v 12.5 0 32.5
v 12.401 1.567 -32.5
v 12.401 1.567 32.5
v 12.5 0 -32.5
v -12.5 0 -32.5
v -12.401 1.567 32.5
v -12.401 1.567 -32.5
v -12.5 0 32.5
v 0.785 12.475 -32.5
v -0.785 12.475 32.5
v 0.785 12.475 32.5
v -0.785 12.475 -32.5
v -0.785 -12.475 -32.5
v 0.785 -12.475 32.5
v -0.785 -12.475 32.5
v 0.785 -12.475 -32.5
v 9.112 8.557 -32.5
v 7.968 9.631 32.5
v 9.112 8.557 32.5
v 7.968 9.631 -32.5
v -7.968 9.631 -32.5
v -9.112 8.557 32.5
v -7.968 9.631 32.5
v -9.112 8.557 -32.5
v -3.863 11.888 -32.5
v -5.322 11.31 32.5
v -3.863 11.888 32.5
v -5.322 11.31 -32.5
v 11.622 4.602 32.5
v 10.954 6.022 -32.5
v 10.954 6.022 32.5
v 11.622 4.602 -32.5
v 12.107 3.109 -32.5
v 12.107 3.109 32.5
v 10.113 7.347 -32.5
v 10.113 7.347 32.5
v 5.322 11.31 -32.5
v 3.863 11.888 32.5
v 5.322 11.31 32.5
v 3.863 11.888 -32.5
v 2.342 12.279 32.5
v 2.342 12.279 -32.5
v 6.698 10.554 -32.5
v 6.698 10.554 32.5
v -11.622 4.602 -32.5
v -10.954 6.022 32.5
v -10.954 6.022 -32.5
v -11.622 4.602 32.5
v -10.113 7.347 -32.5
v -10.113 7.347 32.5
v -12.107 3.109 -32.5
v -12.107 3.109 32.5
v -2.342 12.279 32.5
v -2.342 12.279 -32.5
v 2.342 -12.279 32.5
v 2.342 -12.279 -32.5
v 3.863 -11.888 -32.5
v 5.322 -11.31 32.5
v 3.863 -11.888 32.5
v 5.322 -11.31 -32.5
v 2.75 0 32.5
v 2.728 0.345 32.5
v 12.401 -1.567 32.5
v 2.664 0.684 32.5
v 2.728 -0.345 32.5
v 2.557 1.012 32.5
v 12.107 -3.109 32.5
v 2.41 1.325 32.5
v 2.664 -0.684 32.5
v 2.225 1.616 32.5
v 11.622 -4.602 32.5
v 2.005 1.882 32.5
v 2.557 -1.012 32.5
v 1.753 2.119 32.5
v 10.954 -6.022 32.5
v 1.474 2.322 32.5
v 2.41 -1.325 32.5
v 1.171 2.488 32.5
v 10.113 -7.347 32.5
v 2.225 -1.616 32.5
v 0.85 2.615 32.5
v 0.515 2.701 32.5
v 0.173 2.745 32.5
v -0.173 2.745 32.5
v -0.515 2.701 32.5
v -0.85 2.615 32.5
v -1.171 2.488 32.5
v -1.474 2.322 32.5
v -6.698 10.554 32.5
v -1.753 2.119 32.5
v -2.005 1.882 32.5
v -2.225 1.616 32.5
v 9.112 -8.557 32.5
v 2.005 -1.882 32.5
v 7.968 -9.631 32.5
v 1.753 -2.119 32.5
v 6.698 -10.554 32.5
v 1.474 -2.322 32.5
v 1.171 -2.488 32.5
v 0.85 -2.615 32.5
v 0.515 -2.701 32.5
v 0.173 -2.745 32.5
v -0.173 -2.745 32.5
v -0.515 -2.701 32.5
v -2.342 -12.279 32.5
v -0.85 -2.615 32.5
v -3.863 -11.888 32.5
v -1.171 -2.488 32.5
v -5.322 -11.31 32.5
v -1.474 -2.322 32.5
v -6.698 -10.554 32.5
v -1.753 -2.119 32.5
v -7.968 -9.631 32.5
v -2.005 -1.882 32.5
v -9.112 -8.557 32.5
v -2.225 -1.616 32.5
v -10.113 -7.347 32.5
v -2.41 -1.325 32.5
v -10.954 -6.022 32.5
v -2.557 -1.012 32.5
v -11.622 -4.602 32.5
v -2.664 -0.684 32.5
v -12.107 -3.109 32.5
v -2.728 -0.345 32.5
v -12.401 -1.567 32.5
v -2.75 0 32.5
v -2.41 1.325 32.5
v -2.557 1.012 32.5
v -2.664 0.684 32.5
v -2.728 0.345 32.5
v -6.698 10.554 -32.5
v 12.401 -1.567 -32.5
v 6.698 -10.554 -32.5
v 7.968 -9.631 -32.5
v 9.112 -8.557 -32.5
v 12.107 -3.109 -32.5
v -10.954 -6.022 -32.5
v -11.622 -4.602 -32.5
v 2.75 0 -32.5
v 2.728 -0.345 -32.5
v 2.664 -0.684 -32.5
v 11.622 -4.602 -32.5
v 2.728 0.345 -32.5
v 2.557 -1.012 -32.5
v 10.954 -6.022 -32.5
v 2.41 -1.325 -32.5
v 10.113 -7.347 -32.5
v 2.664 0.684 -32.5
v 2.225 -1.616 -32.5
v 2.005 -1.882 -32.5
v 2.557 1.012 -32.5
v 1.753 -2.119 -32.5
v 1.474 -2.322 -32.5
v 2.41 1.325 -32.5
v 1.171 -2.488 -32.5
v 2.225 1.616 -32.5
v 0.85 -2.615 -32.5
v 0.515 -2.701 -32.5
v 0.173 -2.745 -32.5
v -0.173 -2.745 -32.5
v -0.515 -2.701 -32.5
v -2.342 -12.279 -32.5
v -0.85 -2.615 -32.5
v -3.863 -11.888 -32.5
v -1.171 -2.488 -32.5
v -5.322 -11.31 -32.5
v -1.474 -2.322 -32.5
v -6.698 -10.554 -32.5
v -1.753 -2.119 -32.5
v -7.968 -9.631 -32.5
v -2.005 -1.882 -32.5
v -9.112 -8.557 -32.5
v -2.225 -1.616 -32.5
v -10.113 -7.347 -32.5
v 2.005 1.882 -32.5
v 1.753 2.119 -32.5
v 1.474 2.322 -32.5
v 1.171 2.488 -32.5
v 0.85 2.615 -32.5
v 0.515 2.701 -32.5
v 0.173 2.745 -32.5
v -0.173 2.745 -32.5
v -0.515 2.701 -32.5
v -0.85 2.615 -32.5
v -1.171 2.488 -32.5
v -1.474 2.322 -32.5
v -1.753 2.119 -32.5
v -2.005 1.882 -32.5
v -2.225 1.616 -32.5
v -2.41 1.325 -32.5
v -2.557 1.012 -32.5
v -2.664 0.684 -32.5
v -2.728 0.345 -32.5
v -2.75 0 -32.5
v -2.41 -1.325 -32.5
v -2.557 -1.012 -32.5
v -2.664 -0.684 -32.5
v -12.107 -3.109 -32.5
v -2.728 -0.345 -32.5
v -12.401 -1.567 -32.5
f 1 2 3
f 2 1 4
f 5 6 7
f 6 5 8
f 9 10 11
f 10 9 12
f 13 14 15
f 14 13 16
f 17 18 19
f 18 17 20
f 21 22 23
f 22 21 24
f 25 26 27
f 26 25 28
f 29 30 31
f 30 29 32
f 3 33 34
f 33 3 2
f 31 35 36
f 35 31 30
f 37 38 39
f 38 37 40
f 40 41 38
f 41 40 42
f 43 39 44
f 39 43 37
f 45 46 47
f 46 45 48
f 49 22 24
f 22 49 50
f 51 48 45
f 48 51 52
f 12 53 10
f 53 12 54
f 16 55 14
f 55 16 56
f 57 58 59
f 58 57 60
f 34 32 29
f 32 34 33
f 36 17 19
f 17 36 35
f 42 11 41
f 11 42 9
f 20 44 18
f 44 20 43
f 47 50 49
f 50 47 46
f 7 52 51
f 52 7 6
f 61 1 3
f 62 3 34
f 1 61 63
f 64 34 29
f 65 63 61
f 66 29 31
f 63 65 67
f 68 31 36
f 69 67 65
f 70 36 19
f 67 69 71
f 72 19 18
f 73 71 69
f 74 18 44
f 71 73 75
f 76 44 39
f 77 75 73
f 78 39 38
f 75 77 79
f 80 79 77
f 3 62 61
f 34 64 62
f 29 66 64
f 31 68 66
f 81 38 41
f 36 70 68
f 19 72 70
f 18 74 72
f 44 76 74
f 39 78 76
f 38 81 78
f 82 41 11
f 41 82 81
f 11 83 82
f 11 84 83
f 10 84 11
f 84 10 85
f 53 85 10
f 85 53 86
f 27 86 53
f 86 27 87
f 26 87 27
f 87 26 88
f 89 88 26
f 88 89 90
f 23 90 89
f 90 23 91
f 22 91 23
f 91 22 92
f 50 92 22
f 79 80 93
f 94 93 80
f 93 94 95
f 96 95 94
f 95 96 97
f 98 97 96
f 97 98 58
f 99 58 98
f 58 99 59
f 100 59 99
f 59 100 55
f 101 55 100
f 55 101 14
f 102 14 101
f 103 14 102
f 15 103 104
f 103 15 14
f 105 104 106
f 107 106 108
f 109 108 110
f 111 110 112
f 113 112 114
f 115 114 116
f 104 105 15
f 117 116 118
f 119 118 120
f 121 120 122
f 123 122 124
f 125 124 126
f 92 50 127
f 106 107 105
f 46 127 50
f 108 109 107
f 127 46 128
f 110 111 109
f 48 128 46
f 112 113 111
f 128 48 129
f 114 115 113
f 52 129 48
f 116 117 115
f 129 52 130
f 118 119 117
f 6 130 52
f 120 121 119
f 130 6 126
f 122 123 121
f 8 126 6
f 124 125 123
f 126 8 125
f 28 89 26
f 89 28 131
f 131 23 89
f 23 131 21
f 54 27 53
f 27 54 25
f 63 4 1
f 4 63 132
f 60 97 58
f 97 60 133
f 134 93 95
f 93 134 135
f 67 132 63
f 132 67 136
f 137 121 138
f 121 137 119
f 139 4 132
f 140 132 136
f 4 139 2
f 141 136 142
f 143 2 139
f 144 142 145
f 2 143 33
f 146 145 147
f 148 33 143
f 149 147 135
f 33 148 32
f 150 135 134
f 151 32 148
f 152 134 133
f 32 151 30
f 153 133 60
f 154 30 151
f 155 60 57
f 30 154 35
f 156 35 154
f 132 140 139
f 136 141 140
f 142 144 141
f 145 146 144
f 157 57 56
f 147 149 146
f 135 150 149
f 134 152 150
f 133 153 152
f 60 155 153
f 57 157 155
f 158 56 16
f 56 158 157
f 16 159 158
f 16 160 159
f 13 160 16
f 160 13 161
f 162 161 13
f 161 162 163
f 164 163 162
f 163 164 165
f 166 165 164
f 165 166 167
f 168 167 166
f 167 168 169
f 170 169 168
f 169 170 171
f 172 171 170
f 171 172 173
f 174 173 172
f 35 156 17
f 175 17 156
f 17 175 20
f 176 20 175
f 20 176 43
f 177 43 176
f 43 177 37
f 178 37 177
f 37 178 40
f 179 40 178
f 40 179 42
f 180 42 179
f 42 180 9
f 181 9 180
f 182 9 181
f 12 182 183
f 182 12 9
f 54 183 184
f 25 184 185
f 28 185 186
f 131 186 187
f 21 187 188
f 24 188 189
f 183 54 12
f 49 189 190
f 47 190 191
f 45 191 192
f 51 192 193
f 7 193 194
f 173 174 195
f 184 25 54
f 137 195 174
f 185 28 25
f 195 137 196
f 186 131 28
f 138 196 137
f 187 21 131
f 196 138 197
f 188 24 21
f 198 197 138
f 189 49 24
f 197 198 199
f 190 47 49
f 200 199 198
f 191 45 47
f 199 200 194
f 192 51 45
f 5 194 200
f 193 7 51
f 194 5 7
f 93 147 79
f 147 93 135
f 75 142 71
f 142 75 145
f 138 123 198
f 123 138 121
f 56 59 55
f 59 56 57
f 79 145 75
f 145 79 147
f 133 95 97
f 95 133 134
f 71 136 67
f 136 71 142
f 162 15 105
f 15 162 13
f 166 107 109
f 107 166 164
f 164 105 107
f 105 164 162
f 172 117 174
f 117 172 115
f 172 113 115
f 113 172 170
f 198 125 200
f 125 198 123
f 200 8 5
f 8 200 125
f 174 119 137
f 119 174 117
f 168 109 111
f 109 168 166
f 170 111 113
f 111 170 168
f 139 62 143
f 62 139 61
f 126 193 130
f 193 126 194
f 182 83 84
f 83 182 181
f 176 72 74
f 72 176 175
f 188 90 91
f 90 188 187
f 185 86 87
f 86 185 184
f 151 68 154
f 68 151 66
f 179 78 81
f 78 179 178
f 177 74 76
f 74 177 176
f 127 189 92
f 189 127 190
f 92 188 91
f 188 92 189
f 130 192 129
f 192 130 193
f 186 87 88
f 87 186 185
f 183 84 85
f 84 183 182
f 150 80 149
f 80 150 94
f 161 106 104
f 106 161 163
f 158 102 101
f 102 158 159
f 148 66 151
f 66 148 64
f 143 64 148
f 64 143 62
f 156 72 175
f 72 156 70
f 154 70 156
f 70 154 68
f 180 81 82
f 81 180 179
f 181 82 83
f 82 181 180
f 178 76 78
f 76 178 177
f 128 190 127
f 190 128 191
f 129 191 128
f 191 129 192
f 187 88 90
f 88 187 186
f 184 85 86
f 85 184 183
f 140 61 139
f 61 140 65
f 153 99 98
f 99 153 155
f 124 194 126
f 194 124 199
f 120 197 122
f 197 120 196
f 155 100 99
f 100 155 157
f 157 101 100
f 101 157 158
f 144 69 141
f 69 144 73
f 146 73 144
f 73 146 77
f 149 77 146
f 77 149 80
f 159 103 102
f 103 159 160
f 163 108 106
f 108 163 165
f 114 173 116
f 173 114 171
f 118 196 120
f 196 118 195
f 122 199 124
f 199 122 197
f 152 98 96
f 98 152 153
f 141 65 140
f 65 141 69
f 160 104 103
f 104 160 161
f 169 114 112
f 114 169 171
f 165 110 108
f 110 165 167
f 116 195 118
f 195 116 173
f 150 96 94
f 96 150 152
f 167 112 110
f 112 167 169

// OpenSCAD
$fn = 50;


difference() {
	union() {
		translate(v = [0, 0, -32.5000000000]) {
			cylinder(h = 65, r = 12.5000000000);
		}
	}
	union() {
		translate(v = [0, 0, -100.0000000000]) {
			cylinder(h = 200, r = 2.7500000000);
		}
	}
}
